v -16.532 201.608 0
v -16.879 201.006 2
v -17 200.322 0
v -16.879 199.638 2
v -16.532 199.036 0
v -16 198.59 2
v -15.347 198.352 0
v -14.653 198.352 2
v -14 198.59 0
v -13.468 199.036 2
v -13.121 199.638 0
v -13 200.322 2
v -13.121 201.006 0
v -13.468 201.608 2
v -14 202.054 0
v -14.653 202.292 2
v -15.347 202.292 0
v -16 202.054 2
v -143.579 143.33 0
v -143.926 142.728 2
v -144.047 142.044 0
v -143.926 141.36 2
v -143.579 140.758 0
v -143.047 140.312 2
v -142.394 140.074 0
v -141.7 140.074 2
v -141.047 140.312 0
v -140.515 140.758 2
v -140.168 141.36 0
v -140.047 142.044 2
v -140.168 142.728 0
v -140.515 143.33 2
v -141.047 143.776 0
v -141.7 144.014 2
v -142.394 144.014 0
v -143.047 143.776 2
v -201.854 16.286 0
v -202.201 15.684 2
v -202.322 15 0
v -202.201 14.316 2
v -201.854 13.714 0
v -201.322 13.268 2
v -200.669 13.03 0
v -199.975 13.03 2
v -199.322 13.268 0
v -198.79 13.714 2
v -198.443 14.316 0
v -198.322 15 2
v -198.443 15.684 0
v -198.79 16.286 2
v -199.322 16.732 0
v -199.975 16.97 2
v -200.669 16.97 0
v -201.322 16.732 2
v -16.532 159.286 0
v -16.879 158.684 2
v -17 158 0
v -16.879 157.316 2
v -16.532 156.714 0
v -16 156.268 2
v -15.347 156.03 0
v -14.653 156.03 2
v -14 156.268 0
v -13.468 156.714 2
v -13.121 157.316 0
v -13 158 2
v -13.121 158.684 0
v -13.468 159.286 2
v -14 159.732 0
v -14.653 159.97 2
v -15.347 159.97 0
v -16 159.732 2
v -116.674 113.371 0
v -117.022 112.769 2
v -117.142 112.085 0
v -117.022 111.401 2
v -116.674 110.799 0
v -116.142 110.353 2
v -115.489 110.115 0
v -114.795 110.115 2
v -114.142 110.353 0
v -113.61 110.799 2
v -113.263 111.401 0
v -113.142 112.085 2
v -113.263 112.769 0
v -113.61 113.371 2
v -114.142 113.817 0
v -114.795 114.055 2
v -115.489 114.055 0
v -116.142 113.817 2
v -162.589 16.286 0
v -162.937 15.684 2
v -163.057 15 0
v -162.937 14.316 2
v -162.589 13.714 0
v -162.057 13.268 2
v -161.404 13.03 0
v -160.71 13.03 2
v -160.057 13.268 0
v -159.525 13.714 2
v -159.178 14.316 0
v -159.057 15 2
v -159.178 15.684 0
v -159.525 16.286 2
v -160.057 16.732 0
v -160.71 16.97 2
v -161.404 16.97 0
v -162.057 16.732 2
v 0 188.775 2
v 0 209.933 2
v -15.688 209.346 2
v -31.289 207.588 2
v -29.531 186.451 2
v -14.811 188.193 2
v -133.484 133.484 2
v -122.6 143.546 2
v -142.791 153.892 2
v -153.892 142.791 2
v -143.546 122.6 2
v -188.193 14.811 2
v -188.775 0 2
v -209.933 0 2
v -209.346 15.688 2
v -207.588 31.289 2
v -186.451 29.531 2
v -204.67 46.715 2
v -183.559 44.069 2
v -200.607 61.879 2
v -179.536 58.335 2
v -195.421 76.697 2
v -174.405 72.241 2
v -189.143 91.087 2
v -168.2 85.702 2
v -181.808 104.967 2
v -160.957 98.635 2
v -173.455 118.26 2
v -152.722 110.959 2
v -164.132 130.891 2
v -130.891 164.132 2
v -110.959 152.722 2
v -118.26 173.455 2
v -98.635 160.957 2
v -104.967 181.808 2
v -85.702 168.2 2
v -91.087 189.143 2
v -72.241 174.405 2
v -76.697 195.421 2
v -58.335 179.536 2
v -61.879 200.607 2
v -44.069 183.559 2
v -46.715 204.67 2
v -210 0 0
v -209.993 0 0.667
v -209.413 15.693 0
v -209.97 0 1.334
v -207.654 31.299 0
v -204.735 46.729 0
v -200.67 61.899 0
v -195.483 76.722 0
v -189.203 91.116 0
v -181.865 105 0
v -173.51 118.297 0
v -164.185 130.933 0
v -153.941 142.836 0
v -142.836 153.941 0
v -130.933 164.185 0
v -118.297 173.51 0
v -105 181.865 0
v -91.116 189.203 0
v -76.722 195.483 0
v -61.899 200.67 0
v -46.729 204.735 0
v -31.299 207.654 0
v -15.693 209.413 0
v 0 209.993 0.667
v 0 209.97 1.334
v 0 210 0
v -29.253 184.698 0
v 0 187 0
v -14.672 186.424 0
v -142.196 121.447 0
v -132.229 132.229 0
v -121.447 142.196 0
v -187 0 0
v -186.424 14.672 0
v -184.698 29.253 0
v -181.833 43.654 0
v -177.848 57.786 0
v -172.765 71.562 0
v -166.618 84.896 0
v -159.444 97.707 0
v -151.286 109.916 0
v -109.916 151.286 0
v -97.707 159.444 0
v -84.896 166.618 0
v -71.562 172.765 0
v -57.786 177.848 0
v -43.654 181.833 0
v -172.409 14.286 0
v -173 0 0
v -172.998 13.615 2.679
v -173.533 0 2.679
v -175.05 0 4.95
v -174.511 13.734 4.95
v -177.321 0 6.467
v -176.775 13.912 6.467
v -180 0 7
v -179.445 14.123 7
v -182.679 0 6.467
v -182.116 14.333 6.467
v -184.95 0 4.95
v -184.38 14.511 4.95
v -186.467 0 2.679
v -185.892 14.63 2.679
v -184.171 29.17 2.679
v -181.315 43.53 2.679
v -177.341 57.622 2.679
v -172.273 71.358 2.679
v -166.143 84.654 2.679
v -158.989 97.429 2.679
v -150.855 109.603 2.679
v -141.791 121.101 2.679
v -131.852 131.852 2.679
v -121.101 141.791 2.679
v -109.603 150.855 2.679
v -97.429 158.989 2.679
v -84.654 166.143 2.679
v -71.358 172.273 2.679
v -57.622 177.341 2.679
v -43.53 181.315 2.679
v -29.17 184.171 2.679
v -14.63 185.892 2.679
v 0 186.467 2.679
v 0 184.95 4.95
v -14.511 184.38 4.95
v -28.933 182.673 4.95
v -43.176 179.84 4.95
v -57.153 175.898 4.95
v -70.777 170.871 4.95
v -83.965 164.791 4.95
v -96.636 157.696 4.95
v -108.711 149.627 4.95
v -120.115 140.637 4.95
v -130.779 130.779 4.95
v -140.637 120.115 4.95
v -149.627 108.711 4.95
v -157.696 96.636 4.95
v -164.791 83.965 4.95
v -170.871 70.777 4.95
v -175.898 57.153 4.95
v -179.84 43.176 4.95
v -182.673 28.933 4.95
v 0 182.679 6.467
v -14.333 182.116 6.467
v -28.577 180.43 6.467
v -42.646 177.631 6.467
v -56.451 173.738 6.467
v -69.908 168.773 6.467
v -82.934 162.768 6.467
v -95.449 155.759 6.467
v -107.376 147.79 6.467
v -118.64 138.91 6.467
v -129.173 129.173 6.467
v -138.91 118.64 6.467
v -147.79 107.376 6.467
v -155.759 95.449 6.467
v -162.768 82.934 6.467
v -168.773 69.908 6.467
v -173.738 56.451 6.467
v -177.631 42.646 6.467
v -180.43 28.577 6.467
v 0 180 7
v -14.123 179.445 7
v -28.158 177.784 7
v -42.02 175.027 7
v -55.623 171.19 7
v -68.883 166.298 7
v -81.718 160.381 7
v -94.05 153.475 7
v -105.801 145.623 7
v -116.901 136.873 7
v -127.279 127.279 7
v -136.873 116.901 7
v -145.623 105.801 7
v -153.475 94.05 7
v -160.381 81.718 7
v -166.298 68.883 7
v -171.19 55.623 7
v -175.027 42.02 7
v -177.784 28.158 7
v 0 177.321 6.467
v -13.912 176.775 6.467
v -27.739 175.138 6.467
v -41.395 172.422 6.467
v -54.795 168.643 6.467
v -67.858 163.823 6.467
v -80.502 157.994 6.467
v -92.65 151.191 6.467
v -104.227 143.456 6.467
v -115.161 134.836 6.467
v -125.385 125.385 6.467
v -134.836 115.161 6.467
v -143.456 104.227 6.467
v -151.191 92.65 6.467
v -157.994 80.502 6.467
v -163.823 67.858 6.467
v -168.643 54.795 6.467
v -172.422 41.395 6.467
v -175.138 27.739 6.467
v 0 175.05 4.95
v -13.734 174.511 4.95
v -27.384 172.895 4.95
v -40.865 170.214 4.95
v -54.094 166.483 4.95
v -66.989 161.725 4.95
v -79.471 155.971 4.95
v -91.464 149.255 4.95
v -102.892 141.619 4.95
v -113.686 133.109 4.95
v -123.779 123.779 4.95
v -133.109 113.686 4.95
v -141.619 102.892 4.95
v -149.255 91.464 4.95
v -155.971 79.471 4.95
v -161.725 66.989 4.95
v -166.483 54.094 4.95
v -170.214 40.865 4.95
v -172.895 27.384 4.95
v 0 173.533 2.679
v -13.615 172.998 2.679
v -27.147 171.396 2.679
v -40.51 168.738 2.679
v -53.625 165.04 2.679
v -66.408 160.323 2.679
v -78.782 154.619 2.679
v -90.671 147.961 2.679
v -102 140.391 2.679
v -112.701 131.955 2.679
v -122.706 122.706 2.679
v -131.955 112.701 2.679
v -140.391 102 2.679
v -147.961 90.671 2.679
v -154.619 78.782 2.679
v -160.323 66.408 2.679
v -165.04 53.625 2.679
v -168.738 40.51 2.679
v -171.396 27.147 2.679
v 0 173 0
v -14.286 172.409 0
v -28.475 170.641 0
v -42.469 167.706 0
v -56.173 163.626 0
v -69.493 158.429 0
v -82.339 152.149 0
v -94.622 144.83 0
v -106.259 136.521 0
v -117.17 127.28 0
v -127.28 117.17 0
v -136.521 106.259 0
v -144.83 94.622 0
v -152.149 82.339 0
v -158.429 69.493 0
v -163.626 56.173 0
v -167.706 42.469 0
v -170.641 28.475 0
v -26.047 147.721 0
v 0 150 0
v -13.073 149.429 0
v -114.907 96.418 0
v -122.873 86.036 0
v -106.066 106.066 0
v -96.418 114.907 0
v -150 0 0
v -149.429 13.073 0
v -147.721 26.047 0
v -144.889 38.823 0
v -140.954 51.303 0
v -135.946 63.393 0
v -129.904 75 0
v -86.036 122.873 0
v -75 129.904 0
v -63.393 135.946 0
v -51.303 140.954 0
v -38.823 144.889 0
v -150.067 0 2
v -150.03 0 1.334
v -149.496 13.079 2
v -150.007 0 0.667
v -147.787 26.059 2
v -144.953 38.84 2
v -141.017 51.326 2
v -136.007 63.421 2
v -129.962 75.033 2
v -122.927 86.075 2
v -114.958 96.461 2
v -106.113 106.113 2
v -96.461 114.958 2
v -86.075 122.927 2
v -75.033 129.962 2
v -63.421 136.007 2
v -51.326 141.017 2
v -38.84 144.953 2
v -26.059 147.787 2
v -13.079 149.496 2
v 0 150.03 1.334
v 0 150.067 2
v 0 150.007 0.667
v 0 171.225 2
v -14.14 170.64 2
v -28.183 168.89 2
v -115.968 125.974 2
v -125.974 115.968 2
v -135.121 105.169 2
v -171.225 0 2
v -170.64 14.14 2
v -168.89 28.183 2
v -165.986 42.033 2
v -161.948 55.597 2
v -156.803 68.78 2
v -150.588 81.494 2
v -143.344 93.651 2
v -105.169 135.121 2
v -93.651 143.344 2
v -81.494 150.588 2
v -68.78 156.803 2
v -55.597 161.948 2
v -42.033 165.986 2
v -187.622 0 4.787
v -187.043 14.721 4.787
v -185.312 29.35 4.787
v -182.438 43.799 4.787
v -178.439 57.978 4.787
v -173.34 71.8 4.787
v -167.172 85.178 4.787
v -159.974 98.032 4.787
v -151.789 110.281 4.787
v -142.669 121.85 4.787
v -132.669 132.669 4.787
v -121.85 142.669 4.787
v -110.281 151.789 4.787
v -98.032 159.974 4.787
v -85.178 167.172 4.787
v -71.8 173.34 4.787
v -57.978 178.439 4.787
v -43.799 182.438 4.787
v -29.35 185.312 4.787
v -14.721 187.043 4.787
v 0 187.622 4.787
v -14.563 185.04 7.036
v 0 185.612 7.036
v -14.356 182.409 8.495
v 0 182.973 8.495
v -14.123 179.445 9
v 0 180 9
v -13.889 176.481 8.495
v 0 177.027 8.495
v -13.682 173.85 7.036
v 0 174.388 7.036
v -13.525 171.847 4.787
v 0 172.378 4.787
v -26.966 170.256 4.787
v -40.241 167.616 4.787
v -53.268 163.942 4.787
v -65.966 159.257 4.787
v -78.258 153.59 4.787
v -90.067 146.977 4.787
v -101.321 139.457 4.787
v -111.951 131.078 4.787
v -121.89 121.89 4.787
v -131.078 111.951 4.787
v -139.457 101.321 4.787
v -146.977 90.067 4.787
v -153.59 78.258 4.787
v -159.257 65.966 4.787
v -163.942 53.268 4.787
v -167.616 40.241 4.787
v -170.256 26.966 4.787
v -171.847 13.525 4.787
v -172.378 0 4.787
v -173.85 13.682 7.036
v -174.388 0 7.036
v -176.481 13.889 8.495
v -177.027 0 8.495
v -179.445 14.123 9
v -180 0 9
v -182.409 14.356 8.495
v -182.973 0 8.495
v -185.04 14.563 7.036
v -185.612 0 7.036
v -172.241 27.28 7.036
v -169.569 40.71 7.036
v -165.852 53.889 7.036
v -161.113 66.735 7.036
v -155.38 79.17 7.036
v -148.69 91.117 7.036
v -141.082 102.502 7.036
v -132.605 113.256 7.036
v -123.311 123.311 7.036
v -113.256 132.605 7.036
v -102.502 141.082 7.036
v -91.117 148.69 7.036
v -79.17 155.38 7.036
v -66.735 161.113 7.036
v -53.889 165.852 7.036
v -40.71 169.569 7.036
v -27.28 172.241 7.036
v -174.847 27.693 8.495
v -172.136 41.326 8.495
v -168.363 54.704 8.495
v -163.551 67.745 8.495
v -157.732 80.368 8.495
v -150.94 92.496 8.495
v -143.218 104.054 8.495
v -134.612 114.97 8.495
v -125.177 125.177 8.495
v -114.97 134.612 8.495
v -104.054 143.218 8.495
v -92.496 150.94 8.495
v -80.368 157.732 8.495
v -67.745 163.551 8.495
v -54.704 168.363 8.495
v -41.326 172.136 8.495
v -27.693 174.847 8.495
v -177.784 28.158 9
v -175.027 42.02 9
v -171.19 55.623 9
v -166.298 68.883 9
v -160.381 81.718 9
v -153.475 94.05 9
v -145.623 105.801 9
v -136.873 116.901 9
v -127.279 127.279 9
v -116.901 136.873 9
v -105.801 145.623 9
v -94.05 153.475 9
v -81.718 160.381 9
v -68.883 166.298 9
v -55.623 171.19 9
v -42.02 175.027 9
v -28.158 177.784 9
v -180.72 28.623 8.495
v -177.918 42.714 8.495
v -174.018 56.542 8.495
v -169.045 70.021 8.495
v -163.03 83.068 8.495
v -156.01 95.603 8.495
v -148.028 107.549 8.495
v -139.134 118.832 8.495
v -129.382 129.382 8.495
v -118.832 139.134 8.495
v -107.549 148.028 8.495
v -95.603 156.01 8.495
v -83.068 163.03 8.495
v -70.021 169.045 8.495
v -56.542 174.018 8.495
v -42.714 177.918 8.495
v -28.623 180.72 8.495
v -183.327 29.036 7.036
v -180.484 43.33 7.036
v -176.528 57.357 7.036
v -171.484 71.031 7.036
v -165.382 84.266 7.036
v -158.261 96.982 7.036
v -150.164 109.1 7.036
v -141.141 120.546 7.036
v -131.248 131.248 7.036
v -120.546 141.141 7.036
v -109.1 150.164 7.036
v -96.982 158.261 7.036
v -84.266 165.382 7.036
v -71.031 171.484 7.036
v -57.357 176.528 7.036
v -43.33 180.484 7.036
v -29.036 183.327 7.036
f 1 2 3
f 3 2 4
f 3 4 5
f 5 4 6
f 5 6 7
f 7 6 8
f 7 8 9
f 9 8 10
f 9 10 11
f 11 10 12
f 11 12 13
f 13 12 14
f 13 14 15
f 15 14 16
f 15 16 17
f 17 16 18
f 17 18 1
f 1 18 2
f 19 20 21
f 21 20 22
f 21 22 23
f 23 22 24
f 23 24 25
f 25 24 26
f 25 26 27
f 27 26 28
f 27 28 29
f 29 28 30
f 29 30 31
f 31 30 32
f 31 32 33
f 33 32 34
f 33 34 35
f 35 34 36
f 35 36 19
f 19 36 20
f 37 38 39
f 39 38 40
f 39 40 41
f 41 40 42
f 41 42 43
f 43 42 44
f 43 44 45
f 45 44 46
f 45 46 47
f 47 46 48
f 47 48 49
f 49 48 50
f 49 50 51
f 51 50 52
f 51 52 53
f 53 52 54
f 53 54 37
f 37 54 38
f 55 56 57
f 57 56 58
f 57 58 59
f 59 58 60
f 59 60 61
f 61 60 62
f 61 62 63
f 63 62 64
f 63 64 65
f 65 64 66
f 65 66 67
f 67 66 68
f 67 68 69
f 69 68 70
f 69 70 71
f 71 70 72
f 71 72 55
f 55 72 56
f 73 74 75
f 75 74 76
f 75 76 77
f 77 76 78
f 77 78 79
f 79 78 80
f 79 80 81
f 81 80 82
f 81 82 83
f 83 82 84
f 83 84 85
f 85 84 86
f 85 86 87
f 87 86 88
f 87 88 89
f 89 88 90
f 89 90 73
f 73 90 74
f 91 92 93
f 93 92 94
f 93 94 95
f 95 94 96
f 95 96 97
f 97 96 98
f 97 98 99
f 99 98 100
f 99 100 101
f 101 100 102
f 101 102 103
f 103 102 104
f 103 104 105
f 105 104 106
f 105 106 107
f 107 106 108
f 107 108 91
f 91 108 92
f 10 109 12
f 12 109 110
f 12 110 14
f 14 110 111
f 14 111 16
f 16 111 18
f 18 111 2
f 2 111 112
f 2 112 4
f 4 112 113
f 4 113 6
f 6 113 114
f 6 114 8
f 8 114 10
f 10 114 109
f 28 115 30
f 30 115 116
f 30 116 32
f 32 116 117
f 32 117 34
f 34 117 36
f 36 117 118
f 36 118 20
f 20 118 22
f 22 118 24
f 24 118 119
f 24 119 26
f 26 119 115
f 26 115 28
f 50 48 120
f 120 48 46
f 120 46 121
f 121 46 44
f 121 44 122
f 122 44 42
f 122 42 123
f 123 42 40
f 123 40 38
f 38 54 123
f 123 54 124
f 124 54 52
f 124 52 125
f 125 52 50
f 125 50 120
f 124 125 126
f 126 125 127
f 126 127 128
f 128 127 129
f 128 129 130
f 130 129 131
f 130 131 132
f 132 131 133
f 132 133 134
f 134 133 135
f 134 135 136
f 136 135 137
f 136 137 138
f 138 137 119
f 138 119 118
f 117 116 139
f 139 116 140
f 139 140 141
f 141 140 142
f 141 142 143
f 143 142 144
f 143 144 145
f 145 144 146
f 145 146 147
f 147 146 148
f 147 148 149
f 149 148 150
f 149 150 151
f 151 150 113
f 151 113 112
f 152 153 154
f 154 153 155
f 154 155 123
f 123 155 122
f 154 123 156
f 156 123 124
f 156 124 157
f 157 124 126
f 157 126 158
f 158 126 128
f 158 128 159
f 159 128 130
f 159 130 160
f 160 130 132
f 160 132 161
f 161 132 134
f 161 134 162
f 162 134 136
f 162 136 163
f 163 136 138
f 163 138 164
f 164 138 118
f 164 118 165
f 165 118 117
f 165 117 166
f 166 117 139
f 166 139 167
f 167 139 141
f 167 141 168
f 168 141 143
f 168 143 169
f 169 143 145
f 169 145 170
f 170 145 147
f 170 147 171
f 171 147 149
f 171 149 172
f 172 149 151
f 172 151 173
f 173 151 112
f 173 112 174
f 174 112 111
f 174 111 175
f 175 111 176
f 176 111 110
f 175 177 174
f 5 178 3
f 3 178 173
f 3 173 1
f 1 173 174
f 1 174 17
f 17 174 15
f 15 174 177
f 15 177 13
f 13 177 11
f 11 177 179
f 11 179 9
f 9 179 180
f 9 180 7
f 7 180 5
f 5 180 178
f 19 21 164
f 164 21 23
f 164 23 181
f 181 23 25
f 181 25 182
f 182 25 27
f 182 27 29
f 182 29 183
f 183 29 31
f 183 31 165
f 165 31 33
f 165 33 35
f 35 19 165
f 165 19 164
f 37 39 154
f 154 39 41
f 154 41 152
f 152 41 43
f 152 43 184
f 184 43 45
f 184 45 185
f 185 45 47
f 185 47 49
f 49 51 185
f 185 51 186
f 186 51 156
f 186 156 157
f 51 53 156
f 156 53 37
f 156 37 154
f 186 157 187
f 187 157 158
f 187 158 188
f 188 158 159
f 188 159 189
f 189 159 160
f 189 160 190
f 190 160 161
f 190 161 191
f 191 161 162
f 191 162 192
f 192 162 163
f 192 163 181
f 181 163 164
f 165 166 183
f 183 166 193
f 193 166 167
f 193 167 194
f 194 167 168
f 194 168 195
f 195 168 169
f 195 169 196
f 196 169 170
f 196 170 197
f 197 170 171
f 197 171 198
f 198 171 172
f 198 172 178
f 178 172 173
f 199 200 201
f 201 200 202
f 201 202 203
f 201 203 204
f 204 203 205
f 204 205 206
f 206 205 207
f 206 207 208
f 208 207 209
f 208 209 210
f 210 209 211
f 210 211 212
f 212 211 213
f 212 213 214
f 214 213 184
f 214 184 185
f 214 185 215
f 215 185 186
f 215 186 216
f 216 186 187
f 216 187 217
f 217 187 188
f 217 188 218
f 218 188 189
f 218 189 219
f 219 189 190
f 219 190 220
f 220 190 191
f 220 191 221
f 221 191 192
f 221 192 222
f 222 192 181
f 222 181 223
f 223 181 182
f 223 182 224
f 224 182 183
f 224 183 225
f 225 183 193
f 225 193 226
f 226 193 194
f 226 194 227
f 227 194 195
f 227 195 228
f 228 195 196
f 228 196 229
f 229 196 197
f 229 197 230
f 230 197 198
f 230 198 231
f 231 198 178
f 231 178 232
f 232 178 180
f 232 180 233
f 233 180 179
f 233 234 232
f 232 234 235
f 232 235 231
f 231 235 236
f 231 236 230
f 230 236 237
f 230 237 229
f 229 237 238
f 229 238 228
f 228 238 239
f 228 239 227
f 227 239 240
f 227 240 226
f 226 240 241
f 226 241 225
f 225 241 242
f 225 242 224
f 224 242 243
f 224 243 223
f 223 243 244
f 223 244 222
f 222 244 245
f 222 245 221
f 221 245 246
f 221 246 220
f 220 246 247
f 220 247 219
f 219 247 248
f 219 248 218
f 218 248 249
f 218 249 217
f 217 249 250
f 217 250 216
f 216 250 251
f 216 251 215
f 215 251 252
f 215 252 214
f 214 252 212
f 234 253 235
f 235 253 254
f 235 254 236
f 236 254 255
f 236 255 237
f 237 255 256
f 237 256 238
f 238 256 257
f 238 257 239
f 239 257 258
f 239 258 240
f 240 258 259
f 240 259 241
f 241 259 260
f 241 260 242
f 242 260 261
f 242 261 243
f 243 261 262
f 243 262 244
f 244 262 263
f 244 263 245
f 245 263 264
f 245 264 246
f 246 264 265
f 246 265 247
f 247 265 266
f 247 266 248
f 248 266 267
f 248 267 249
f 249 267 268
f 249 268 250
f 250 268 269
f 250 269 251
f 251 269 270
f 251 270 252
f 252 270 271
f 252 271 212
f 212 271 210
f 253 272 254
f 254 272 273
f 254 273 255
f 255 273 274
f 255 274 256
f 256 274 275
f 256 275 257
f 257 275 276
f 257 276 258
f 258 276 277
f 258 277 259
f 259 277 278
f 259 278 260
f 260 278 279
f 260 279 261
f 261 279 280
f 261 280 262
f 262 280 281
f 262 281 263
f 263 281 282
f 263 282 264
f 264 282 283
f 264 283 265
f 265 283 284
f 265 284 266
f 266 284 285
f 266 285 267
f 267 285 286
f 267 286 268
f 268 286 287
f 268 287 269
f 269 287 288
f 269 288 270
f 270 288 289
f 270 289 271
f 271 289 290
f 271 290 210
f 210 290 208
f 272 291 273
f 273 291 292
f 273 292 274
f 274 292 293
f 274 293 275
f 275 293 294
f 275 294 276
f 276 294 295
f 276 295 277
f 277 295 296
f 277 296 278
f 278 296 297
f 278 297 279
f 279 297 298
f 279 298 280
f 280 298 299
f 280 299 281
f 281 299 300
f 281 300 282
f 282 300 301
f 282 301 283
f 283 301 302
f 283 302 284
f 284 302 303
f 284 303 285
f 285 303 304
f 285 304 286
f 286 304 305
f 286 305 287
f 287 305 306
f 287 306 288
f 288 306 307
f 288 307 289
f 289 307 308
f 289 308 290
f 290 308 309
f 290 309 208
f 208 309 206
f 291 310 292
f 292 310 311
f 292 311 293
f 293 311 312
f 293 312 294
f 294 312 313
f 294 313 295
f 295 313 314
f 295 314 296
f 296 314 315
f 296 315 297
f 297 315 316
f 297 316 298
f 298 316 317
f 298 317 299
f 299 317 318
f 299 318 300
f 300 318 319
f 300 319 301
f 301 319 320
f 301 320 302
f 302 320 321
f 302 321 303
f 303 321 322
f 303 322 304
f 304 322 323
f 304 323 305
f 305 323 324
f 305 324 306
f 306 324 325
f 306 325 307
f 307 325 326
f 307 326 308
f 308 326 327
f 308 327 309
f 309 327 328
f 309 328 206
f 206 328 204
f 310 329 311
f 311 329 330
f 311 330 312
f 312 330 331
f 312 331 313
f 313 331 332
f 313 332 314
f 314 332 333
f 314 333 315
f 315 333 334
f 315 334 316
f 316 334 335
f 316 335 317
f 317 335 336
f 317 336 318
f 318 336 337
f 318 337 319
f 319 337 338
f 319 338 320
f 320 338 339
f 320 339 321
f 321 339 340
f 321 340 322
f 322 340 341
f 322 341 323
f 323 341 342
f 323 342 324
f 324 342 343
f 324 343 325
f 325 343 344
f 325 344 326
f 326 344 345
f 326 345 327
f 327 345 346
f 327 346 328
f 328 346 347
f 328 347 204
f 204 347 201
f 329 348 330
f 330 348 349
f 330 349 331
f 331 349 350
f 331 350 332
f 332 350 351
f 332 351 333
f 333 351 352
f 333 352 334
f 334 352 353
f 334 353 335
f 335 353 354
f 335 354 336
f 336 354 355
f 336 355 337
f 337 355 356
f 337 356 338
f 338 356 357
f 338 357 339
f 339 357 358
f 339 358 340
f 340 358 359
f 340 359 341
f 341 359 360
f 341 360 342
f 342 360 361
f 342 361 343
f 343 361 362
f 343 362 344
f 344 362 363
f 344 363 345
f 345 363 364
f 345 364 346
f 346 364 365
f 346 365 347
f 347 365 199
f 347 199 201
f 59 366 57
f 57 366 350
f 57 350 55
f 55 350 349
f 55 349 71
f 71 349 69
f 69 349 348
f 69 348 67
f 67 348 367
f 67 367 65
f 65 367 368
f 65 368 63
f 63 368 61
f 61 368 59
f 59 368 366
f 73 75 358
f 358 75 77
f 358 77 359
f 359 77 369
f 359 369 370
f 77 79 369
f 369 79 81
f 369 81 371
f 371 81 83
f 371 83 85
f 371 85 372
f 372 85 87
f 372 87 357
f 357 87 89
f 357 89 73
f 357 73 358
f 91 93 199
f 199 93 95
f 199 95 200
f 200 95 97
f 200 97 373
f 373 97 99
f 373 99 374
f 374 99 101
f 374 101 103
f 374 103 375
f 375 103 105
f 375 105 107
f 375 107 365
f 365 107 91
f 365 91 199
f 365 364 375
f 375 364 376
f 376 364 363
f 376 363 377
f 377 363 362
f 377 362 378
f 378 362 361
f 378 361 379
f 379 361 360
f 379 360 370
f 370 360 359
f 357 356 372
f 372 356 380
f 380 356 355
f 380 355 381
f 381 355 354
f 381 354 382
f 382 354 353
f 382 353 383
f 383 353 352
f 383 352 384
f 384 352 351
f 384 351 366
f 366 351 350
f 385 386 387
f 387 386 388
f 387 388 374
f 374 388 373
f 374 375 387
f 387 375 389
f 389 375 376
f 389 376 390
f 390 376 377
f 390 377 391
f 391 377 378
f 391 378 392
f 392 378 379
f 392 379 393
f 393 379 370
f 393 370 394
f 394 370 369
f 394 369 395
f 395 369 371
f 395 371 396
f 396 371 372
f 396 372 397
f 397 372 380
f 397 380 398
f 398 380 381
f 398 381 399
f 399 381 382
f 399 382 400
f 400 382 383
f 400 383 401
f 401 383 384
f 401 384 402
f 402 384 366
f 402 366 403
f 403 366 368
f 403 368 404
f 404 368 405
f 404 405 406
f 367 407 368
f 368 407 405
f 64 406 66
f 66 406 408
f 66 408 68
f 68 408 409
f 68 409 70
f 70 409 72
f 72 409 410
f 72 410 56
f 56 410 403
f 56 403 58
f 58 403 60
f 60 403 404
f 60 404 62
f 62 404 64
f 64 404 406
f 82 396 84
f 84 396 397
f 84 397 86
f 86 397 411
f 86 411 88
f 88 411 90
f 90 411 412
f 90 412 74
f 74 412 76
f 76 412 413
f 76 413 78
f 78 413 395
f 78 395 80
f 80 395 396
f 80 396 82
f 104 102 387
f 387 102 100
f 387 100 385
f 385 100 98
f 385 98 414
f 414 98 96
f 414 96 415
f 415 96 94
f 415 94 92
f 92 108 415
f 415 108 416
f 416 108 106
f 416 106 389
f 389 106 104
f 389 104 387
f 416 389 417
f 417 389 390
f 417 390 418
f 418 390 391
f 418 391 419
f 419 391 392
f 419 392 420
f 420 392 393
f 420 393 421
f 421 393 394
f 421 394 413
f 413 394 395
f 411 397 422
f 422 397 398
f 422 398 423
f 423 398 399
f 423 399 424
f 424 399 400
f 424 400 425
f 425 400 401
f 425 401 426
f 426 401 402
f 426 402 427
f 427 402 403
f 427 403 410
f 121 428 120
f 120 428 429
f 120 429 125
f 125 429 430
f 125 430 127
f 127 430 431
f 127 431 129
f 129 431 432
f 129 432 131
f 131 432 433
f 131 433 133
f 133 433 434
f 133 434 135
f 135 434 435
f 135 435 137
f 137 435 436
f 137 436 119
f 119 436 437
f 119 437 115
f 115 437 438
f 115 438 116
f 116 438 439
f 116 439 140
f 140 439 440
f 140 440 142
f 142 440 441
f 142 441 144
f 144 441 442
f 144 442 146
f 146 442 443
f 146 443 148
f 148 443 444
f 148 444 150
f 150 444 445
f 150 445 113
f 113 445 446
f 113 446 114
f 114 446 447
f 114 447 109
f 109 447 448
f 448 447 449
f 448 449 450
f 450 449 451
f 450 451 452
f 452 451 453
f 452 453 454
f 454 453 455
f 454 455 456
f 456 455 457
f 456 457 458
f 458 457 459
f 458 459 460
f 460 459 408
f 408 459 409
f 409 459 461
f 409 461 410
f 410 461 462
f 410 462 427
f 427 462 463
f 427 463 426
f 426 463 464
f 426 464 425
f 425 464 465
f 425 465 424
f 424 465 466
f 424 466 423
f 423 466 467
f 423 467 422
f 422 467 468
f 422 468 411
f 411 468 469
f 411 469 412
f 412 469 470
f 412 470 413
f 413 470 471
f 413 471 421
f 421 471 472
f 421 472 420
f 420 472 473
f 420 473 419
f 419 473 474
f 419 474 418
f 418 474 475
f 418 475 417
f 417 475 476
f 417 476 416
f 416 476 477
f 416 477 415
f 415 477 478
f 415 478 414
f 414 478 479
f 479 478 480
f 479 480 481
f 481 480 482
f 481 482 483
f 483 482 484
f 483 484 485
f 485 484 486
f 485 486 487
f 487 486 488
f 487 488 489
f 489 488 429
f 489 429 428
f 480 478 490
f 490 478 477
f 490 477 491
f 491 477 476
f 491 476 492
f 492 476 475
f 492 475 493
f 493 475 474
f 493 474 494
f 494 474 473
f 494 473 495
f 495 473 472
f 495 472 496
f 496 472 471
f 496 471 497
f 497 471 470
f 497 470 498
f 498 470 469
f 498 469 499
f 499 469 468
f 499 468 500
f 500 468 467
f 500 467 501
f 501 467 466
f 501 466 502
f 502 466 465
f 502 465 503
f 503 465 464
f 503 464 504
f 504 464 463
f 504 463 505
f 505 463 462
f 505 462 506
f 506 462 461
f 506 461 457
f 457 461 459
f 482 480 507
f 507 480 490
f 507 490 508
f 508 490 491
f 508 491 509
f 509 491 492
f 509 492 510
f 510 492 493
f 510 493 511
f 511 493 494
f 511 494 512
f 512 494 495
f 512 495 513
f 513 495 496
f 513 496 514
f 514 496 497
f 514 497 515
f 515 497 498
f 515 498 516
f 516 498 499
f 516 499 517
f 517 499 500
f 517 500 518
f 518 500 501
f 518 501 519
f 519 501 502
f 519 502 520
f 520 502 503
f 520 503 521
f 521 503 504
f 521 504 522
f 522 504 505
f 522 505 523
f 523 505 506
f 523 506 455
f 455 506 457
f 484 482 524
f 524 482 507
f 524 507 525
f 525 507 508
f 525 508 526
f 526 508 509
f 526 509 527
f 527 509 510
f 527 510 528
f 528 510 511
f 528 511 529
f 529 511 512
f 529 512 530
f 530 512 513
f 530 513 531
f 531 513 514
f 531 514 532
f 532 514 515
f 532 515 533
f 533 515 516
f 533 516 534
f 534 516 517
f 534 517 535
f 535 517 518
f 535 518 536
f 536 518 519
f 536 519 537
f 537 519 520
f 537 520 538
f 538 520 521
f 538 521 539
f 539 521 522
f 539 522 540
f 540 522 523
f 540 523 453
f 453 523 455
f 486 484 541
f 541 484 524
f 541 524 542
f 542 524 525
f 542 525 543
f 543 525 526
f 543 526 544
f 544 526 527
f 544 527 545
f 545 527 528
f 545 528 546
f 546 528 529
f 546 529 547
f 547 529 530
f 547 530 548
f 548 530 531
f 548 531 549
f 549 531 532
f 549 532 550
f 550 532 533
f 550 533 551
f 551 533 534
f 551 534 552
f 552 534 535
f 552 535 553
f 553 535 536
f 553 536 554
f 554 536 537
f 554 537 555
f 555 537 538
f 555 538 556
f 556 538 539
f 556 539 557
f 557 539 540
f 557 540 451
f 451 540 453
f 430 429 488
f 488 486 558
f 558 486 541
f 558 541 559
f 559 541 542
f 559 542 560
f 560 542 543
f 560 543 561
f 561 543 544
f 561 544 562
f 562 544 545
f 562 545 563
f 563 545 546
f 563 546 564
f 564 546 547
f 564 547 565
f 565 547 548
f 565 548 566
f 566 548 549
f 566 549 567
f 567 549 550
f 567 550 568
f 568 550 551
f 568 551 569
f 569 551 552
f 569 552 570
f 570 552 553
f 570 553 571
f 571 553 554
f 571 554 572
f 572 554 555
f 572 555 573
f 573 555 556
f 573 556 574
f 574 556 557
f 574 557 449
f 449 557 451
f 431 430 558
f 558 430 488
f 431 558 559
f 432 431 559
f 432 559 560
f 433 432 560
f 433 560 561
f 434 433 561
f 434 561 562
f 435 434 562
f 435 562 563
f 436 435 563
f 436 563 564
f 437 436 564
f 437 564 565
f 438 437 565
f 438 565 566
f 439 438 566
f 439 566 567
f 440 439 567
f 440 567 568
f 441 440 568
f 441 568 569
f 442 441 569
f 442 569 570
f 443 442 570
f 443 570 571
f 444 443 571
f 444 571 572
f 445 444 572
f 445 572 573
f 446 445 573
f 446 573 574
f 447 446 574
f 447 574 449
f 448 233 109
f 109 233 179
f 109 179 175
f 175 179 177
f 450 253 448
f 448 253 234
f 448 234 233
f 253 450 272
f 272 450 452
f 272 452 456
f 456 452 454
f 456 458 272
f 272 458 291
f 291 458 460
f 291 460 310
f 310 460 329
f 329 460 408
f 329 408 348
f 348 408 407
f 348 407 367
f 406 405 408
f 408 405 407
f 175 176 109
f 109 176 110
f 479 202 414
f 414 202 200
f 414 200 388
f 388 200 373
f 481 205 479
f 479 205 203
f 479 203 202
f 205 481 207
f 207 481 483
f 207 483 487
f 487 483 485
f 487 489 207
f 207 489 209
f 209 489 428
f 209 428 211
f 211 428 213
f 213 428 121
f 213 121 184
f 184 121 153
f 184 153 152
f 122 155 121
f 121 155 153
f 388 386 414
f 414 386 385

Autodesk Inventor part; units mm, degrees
ref_plane "YZ Plane" through (0, 0, 0) normal (1, 0, 0) x (0, 1, 0)
ref_plane "XZ Plane" through (0, 0, 0) normal (0, 1, 0) x (-1, 0, 0)
ref_plane "XY Plane" through (0, 0, 0) normal (0, 0, 1) x (1, 0, 0)
sketch "Skizze1" plane through (0, 0, 0) normal (0, 0, 1) x (1, 0, 0)
  arc A0 (0, 180) -> (-180, 0) centre (0, 0) ccw
  line L0 (-260.7351, 0) -> (43.4558, 0) projected
  line L1 (0, -43.4558) -> (0, 260.7351) projected
  dimension "d0" = 180
  dimension "d1" = 90
sketch "Skizze2" plane through (0, 0, 0) normal (0, 1, 0) x (-1, 0, 0)
  line L0 (0, -42) -> (0, 42) projected
  circle A0 centre (180, 0) radius 7
  line L1 (252, 0) -> (-42, 0) projected
  circle A1 centre (180, 0) radius 9
  line L2 (191.9553, 0) -> (171, 0)
  line L3 (173, 0) -> (160, 0)
  line L4 (173, 2) -> (173, 0)
  line L5 (187, 0) -> (200, 0)
  line L6 (187, 2) -> (187, 0)
  circle A2 centre (180, 0) radius 30
  line L7 (187, 2) -> (209.9333, 2)
  line L8 (173, 2) -> (150.0667, 2)
  point P0 (0, 0)
  point P1 (173, 0)
  point P2 (171, 0)
  point P3 (189, 0)
  point P4 (188.775, 2)
  point P5 (171.225, 2)
  point P6 (150, 0)
  point P7 (210, 0)
  dimension "d5" = 18
  dimension "d3" = 180
  dimension "d4" = 14
  dimension "d16" = 60
  dimension "d17" = 2
  dimension "d18" = 23
  dimension "d19" = 7
sweep "Sweeping1" add profiles "Skizze2" path "Skizze1" path curves A0 contours L6 L7 A1 L1 | A0 L4 L8 A1 L7 L6 | L1 A1 L8 L4 | A1 L7 A2 L1 | L1 A2 L8 A1
sketch "Skizze7" plane through (-171.225, 0, 2) normal (0, 0, 1) x (1, 0, 0)
  line L0 (18.1678, 0) -> (18.1678, -3) projected
  line L1 (0, 0) -> (21.1583, 0) projected
  line L2 (171.225, 150) -> (171.1678, 150) projected
  line L3 (171.225, 171.225) -> (171.225, 150.0667) projected
  line L4 (171.225, 210) -> (171.1678, 210) projected
  arc A0 (171.225, 150.0667) -> (21.1583, 0) centre (171.225, 0) ccw projected
  circle A1 centre (171.225, 0) radius 171 projected
  line L5 (-41.8322, 0) -> (-41.8322, -3) projected
  point P0 (10.1678, 15)
  point P1 (56.0828, 112.085)
  point P2 (156.225, 158)
  point P3 (21.225, 0)
  point P4 (-38.775, 0)
  dimension "d36" = 8
  dimension "d37" = 15
  dimension "d38" = 8
  dimension "d39" = 15
  dimension "d41" = 97.915
  dimension "d42" = 97.915
hole "Bohrung1" at (-161.0572, 15, 2) at (-115.1422, 112.085, 2) at (-15, 158, 2) direction (0, 0, -1) diameter 4 depth 8
sketch "Skizze8" plane through (-209.9333, 0, 2) normal (0, 0, 1) x (1, 0, 0)
  line L0 (-0.0667, 0) -> (-0.0667, -3) projected
  line L1 (0, 0) -> (21.1583, 0) projected
  line L2 (209.9333, 209.9333) -> (209.9333, 188.775) projected
  line L3 (209.9333, 210) -> (212.9333, 210) projected
  arc A0 (209.9333, 171.225) -> (38.7082, 0) centre (209.9333, 0) ccw projected
  circle A1 centre (209.9333, 0) radius 200.8827
  point P0 (9.6113, 15)
  point P1 (67.8861, 142.044)
  point P2 (194.9333, 200.3219)
  dimension "d51" = 15
  dimension "d52" = 15
  dimension "d54" = 142.044
  dimension "d59" = 401.7655
  dimension "d60" = 142.0471
hole "Bohrung3" at (-200.3219, 15, 2) at (-142.0471, 142.044, 2) at (-15, 200.3219, 2) direction (0, 0, -1) diameter 4 depth 8
properties part number "Kurventeil-Ph-L-dünn"
